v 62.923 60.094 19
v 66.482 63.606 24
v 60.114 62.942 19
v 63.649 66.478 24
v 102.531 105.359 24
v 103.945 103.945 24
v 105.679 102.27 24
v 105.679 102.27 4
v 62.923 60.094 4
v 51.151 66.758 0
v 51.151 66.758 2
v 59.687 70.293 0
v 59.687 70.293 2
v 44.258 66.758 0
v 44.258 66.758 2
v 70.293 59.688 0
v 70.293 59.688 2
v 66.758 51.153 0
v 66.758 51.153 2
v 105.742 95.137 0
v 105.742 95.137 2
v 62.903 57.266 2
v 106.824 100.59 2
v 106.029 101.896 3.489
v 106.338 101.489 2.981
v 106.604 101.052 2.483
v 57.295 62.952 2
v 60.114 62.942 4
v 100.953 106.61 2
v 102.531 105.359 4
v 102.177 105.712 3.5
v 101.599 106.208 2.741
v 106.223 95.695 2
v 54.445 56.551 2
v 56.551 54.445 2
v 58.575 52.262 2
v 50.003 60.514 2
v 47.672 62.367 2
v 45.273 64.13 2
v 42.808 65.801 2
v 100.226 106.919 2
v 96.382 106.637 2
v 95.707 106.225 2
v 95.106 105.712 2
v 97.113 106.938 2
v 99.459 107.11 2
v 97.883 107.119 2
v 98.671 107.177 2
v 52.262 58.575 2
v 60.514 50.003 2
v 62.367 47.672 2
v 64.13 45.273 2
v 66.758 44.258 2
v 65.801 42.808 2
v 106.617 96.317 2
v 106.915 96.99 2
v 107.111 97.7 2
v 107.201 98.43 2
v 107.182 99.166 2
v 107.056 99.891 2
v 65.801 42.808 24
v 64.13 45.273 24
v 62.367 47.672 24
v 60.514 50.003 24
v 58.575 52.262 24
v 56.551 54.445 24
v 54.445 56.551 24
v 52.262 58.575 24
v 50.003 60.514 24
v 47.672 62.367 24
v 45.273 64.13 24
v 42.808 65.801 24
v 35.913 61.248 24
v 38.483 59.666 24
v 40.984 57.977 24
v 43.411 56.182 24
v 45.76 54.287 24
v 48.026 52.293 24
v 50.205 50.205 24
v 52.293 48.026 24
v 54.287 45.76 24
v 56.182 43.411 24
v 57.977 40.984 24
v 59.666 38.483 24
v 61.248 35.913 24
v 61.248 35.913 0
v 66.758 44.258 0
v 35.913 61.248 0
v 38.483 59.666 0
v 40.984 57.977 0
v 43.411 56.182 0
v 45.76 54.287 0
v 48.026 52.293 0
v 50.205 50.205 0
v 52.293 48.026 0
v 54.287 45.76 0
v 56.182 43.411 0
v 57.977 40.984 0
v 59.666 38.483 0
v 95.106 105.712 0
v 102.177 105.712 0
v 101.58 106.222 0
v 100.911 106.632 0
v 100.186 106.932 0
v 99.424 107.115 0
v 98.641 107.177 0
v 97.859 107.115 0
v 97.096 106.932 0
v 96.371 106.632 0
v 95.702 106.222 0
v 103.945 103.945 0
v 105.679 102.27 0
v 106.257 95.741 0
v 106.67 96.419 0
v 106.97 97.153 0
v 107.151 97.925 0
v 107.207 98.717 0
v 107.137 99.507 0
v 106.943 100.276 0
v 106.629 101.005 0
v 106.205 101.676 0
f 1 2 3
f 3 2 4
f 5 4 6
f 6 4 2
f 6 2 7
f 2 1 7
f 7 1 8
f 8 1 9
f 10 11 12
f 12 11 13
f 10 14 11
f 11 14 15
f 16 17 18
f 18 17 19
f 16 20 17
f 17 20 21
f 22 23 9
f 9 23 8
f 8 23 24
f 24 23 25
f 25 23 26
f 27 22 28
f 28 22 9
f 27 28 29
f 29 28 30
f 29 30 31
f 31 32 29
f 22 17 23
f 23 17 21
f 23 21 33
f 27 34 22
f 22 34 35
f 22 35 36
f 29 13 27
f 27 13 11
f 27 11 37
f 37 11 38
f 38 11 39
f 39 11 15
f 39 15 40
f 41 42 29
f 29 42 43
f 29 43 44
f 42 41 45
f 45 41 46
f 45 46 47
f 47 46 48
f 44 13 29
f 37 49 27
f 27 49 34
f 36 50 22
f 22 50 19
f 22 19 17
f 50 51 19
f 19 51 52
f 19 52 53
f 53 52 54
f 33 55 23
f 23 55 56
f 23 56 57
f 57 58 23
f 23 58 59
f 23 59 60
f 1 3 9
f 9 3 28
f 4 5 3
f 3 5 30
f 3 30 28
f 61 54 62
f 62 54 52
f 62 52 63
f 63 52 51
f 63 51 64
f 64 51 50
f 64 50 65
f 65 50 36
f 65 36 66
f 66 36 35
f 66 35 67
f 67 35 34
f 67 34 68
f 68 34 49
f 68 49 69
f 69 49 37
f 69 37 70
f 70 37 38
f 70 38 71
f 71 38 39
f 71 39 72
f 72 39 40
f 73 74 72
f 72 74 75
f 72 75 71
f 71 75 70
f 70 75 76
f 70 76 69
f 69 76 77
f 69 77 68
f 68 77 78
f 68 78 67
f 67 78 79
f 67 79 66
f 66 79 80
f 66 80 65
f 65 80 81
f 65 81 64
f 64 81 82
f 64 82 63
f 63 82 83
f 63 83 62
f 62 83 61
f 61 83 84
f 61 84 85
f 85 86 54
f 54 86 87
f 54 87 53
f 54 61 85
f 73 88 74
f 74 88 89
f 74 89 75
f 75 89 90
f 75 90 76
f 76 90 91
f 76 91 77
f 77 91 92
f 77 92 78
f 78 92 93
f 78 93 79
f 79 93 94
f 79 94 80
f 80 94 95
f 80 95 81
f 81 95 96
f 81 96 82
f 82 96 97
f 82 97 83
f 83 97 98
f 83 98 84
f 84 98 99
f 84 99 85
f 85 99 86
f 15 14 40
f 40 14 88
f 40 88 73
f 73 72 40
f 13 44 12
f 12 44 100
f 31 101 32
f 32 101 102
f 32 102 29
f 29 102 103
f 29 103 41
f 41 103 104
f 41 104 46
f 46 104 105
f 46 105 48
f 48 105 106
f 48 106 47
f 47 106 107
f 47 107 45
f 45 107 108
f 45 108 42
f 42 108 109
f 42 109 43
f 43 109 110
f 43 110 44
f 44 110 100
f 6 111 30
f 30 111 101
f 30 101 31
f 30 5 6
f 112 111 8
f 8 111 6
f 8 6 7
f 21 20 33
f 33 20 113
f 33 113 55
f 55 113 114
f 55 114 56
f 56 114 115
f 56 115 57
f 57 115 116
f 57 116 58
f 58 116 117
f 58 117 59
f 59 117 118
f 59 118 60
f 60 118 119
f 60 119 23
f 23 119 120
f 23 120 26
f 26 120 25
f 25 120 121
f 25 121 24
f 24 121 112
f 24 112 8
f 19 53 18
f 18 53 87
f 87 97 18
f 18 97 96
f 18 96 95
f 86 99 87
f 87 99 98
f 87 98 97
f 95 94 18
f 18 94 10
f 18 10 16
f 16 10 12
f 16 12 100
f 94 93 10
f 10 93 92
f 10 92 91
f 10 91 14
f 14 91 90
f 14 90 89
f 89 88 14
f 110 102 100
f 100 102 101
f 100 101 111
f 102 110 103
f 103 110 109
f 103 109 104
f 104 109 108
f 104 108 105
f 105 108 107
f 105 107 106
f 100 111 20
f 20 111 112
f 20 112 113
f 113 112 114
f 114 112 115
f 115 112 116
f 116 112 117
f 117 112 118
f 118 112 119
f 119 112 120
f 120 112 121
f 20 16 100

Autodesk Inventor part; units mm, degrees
ref_plane "YZ Plane" through (0, 0, 0) normal (1, 0, 0) x (0, 1, 0)
ref_plane "XZ Plane" through (0, 0, 0) normal (0, 1, 0) x (-1, 0, 0)
ref_plane "XY Plane" through (0, 0, 0) normal (0, 0, 1) x (1, 0, 0)
ref_plane "Work Plane1" through (0, 0, 0) normal (0, 0, 1) x (1, 0, 0)
sketch "Sketch1" plane through (0, 0, 0) normal (0, 0, 1) x (1, 0, 0)
  circle A0 centre (0, 0) radius 78.5
  line L0 (0, 0) -> (103.944697, 103.944697)
  line L1 (0, 0) -> (147, 0) construction
  line L2 (103.944697, 103.944697) -> (102.17693, 105.712464)
  line L3 (103.944697, 103.944697) -> (105.679378, 102.270109)
  circle A1 centre (0, 0) radius 71
  line L4 (105.742236, 95.137281) -> (55.226256, 44.621302)
  line L5 (109.340638, 98.735683) -> (180.781021, 98.735683) construction
  line L6 (95.105862, 105.712464) -> (44.620391, 55.226993)
  line L7 (98.641396, 109.247998) -> (170.038634, 109.247998) construction
  line L8 (44.257728, 44.257728) -> (66.757728, 44.257728)
  line L9 (66.757728, 44.257728) -> (66.757728, 66.757728)
  line L10 (66.757728, 66.757728) -> (44.257728, 66.757728)
  line L11 (44.257728, 66.757728) -> (44.257728, 44.257728)
  line L12 (44.257728, 44.257728) -> (66.757728, 66.757728) construction
  line L13 (66.757728, 44.257728) -> (44.257728, 66.757728) construction
  arc A2 (102.17693, 105.712464) -> (95.105862, 105.712464) centre (98.641396, 102.17693) ccw
  arc A3 (105.742236, 95.137281) -> (105.679378, 102.270109) centre (102.206702, 98.672815) ccw
  line L14 (44.257728, 66.757728) -> (35.912715, 61.247669)
  line L15 (66.757728, 44.257728) -> (61.247669, 35.912715)
  point P0 (55.507728, 55.507728)
  point P1 (55.518047, 44.257728)
  point P2 (66.757728, 56.152774)
  point P3 (56.151126, 66.757728)
  point P4 (44.257728, 55.518047)
  dimension "d0" = 157
  dimension "d1" = 147
  dimension "d2" = 45
  dimension "d3" = 7.5
  dimension "d4" = 7.5
  dimension "d5" = 142
  dimension "d6" = 135
  dimension "d7" = 135
  dimension "d8" = 22.5
  dimension "d9" = 22.5
  dimension "d10" = 5
  dimension "d34" = 10
  dimension "d35" = 10
extrude "Extrusion1" add sketch "Sketch1" along normal blind 2 contours L15 A1 L8 A0 | A0 L8 L15 | L14 L11 A0 | A0 L11 A1 L14 | L8 A1 L4 A0 | A0 L4 L9 L8 | L11 L10 L6 A0 | A0 L6 A1 L11 | L4 A1 L0 A0 | A0 L0 L9 L4 | L9 L0 L3 A3 L4 | L6 L10 L0 A0 | A0 L0 A1 L6 | L6 A2 L2 L0 L10
sketch "Sketch2" plane through (0, 0, 2) normal (0, 0, 1) x (1, 0, 0)
  circle A0 centre (0, 0) radius 78.5
  circle A1 centre (0, 0) radius 71
  line L0 (105.679378, 102.270109) -> (103.944697, 103.944697)
  line L1 (103.944697, 103.944697) -> (61.51829, 61.51829)
  line L2 (103.944697, 103.944697) -> (163.944697, 103.944697) construction
  line L3 (103.944697, 103.944697) -> (102.17693, 105.712464)
  line L4 (44.257728, 66.757728) -> (44.257728, 55.518047)
  line L5 (55.518047, 44.257728) -> (66.757728, 44.257728)
  line L6 (46.257728, 66.757728) -> (46.257728, 55.518047)
  line L7 (55.518047, 46.257728) -> (66.757728, 46.257728)
  line L8 (61.51829, 61.51829) -> (60.113782, 62.942143)
  line L9 (60.113782, 62.942143) -> (62.922798, 60.094437)
  arc A2 (105.742236, 95.137281) -> (105.679378, 102.270109) centre (102.206702, 98.672815) ccw
  line L10 (62.922798, 60.094437) -> (105.679378, 102.270109)
  line L11 (60.113782, 62.942143) -> (102.530516, 105.358877)
  line L12 (60.113782, 62.942143) -> (120.100103, 62.942143) construction
  line L13 (46.257728, 55.518047) -> (46.257728, 53.862998)
  line L14 (55.518047, 46.257728) -> (53.862998, 46.257728)
  line L15 (56.151126, 66.757728) -> (44.257728, 66.757728)
  line L16 (44.257728, 66.757728) -> (35.912715, 61.247669)
  line L17 (66.757728, 44.257728) -> (61.247669, 35.912715)
  point P0 (58.399252, 46.257728)
  point P1 (63.422966, 46.257728)
  point P2 (46.257728, 63.422966)
  point P3 (46.257728, 58.399252)
  point P4 (44.257728, 64.834432)
  point P5 (64.834432, 44.257728)
  point P6 (65.800574, 42.808113)
  point P7 (42.808113, 65.800574)
  dimension "d13" = 157
  dimension "d14" = 7.5
  dimension "d16" = 135
  dimension "d21" = 2
  dimension "d22" = 2
  dimension "d25" = 60
  dimension "d26" = 2
  dimension "d27" = 4
  dimension "d28" = 45
  dimension "d32" = 10
  dimension "d33" = 10
extrude "Extrusion2" add sketch "Sketch2" along normal blind 22 contours L17 A1 L5 A0 | A0 L4 A1 L16 | L5 A1 L14 L7 A0 | A0 L6 L13 A1 L4 | L7 L14 A1 L13 L6 A0 | L10 L9 L1 L0 | L1 L8 L11 L3
chamfer "Chamfer1" distance 2 angle 45 3 edges at (84.3011, 81.1823, 2) (81.3221, 84.1505, 2) (61.5183, 61.5183, 2)
chamfer "Chamfer2" distance 5 angle 45 3 edges at (66.7577, 56.1528, 1) (56.1511, 66.7577, 1) (61.5183, 61.5183, 24)
properties part number "HourGuard"
